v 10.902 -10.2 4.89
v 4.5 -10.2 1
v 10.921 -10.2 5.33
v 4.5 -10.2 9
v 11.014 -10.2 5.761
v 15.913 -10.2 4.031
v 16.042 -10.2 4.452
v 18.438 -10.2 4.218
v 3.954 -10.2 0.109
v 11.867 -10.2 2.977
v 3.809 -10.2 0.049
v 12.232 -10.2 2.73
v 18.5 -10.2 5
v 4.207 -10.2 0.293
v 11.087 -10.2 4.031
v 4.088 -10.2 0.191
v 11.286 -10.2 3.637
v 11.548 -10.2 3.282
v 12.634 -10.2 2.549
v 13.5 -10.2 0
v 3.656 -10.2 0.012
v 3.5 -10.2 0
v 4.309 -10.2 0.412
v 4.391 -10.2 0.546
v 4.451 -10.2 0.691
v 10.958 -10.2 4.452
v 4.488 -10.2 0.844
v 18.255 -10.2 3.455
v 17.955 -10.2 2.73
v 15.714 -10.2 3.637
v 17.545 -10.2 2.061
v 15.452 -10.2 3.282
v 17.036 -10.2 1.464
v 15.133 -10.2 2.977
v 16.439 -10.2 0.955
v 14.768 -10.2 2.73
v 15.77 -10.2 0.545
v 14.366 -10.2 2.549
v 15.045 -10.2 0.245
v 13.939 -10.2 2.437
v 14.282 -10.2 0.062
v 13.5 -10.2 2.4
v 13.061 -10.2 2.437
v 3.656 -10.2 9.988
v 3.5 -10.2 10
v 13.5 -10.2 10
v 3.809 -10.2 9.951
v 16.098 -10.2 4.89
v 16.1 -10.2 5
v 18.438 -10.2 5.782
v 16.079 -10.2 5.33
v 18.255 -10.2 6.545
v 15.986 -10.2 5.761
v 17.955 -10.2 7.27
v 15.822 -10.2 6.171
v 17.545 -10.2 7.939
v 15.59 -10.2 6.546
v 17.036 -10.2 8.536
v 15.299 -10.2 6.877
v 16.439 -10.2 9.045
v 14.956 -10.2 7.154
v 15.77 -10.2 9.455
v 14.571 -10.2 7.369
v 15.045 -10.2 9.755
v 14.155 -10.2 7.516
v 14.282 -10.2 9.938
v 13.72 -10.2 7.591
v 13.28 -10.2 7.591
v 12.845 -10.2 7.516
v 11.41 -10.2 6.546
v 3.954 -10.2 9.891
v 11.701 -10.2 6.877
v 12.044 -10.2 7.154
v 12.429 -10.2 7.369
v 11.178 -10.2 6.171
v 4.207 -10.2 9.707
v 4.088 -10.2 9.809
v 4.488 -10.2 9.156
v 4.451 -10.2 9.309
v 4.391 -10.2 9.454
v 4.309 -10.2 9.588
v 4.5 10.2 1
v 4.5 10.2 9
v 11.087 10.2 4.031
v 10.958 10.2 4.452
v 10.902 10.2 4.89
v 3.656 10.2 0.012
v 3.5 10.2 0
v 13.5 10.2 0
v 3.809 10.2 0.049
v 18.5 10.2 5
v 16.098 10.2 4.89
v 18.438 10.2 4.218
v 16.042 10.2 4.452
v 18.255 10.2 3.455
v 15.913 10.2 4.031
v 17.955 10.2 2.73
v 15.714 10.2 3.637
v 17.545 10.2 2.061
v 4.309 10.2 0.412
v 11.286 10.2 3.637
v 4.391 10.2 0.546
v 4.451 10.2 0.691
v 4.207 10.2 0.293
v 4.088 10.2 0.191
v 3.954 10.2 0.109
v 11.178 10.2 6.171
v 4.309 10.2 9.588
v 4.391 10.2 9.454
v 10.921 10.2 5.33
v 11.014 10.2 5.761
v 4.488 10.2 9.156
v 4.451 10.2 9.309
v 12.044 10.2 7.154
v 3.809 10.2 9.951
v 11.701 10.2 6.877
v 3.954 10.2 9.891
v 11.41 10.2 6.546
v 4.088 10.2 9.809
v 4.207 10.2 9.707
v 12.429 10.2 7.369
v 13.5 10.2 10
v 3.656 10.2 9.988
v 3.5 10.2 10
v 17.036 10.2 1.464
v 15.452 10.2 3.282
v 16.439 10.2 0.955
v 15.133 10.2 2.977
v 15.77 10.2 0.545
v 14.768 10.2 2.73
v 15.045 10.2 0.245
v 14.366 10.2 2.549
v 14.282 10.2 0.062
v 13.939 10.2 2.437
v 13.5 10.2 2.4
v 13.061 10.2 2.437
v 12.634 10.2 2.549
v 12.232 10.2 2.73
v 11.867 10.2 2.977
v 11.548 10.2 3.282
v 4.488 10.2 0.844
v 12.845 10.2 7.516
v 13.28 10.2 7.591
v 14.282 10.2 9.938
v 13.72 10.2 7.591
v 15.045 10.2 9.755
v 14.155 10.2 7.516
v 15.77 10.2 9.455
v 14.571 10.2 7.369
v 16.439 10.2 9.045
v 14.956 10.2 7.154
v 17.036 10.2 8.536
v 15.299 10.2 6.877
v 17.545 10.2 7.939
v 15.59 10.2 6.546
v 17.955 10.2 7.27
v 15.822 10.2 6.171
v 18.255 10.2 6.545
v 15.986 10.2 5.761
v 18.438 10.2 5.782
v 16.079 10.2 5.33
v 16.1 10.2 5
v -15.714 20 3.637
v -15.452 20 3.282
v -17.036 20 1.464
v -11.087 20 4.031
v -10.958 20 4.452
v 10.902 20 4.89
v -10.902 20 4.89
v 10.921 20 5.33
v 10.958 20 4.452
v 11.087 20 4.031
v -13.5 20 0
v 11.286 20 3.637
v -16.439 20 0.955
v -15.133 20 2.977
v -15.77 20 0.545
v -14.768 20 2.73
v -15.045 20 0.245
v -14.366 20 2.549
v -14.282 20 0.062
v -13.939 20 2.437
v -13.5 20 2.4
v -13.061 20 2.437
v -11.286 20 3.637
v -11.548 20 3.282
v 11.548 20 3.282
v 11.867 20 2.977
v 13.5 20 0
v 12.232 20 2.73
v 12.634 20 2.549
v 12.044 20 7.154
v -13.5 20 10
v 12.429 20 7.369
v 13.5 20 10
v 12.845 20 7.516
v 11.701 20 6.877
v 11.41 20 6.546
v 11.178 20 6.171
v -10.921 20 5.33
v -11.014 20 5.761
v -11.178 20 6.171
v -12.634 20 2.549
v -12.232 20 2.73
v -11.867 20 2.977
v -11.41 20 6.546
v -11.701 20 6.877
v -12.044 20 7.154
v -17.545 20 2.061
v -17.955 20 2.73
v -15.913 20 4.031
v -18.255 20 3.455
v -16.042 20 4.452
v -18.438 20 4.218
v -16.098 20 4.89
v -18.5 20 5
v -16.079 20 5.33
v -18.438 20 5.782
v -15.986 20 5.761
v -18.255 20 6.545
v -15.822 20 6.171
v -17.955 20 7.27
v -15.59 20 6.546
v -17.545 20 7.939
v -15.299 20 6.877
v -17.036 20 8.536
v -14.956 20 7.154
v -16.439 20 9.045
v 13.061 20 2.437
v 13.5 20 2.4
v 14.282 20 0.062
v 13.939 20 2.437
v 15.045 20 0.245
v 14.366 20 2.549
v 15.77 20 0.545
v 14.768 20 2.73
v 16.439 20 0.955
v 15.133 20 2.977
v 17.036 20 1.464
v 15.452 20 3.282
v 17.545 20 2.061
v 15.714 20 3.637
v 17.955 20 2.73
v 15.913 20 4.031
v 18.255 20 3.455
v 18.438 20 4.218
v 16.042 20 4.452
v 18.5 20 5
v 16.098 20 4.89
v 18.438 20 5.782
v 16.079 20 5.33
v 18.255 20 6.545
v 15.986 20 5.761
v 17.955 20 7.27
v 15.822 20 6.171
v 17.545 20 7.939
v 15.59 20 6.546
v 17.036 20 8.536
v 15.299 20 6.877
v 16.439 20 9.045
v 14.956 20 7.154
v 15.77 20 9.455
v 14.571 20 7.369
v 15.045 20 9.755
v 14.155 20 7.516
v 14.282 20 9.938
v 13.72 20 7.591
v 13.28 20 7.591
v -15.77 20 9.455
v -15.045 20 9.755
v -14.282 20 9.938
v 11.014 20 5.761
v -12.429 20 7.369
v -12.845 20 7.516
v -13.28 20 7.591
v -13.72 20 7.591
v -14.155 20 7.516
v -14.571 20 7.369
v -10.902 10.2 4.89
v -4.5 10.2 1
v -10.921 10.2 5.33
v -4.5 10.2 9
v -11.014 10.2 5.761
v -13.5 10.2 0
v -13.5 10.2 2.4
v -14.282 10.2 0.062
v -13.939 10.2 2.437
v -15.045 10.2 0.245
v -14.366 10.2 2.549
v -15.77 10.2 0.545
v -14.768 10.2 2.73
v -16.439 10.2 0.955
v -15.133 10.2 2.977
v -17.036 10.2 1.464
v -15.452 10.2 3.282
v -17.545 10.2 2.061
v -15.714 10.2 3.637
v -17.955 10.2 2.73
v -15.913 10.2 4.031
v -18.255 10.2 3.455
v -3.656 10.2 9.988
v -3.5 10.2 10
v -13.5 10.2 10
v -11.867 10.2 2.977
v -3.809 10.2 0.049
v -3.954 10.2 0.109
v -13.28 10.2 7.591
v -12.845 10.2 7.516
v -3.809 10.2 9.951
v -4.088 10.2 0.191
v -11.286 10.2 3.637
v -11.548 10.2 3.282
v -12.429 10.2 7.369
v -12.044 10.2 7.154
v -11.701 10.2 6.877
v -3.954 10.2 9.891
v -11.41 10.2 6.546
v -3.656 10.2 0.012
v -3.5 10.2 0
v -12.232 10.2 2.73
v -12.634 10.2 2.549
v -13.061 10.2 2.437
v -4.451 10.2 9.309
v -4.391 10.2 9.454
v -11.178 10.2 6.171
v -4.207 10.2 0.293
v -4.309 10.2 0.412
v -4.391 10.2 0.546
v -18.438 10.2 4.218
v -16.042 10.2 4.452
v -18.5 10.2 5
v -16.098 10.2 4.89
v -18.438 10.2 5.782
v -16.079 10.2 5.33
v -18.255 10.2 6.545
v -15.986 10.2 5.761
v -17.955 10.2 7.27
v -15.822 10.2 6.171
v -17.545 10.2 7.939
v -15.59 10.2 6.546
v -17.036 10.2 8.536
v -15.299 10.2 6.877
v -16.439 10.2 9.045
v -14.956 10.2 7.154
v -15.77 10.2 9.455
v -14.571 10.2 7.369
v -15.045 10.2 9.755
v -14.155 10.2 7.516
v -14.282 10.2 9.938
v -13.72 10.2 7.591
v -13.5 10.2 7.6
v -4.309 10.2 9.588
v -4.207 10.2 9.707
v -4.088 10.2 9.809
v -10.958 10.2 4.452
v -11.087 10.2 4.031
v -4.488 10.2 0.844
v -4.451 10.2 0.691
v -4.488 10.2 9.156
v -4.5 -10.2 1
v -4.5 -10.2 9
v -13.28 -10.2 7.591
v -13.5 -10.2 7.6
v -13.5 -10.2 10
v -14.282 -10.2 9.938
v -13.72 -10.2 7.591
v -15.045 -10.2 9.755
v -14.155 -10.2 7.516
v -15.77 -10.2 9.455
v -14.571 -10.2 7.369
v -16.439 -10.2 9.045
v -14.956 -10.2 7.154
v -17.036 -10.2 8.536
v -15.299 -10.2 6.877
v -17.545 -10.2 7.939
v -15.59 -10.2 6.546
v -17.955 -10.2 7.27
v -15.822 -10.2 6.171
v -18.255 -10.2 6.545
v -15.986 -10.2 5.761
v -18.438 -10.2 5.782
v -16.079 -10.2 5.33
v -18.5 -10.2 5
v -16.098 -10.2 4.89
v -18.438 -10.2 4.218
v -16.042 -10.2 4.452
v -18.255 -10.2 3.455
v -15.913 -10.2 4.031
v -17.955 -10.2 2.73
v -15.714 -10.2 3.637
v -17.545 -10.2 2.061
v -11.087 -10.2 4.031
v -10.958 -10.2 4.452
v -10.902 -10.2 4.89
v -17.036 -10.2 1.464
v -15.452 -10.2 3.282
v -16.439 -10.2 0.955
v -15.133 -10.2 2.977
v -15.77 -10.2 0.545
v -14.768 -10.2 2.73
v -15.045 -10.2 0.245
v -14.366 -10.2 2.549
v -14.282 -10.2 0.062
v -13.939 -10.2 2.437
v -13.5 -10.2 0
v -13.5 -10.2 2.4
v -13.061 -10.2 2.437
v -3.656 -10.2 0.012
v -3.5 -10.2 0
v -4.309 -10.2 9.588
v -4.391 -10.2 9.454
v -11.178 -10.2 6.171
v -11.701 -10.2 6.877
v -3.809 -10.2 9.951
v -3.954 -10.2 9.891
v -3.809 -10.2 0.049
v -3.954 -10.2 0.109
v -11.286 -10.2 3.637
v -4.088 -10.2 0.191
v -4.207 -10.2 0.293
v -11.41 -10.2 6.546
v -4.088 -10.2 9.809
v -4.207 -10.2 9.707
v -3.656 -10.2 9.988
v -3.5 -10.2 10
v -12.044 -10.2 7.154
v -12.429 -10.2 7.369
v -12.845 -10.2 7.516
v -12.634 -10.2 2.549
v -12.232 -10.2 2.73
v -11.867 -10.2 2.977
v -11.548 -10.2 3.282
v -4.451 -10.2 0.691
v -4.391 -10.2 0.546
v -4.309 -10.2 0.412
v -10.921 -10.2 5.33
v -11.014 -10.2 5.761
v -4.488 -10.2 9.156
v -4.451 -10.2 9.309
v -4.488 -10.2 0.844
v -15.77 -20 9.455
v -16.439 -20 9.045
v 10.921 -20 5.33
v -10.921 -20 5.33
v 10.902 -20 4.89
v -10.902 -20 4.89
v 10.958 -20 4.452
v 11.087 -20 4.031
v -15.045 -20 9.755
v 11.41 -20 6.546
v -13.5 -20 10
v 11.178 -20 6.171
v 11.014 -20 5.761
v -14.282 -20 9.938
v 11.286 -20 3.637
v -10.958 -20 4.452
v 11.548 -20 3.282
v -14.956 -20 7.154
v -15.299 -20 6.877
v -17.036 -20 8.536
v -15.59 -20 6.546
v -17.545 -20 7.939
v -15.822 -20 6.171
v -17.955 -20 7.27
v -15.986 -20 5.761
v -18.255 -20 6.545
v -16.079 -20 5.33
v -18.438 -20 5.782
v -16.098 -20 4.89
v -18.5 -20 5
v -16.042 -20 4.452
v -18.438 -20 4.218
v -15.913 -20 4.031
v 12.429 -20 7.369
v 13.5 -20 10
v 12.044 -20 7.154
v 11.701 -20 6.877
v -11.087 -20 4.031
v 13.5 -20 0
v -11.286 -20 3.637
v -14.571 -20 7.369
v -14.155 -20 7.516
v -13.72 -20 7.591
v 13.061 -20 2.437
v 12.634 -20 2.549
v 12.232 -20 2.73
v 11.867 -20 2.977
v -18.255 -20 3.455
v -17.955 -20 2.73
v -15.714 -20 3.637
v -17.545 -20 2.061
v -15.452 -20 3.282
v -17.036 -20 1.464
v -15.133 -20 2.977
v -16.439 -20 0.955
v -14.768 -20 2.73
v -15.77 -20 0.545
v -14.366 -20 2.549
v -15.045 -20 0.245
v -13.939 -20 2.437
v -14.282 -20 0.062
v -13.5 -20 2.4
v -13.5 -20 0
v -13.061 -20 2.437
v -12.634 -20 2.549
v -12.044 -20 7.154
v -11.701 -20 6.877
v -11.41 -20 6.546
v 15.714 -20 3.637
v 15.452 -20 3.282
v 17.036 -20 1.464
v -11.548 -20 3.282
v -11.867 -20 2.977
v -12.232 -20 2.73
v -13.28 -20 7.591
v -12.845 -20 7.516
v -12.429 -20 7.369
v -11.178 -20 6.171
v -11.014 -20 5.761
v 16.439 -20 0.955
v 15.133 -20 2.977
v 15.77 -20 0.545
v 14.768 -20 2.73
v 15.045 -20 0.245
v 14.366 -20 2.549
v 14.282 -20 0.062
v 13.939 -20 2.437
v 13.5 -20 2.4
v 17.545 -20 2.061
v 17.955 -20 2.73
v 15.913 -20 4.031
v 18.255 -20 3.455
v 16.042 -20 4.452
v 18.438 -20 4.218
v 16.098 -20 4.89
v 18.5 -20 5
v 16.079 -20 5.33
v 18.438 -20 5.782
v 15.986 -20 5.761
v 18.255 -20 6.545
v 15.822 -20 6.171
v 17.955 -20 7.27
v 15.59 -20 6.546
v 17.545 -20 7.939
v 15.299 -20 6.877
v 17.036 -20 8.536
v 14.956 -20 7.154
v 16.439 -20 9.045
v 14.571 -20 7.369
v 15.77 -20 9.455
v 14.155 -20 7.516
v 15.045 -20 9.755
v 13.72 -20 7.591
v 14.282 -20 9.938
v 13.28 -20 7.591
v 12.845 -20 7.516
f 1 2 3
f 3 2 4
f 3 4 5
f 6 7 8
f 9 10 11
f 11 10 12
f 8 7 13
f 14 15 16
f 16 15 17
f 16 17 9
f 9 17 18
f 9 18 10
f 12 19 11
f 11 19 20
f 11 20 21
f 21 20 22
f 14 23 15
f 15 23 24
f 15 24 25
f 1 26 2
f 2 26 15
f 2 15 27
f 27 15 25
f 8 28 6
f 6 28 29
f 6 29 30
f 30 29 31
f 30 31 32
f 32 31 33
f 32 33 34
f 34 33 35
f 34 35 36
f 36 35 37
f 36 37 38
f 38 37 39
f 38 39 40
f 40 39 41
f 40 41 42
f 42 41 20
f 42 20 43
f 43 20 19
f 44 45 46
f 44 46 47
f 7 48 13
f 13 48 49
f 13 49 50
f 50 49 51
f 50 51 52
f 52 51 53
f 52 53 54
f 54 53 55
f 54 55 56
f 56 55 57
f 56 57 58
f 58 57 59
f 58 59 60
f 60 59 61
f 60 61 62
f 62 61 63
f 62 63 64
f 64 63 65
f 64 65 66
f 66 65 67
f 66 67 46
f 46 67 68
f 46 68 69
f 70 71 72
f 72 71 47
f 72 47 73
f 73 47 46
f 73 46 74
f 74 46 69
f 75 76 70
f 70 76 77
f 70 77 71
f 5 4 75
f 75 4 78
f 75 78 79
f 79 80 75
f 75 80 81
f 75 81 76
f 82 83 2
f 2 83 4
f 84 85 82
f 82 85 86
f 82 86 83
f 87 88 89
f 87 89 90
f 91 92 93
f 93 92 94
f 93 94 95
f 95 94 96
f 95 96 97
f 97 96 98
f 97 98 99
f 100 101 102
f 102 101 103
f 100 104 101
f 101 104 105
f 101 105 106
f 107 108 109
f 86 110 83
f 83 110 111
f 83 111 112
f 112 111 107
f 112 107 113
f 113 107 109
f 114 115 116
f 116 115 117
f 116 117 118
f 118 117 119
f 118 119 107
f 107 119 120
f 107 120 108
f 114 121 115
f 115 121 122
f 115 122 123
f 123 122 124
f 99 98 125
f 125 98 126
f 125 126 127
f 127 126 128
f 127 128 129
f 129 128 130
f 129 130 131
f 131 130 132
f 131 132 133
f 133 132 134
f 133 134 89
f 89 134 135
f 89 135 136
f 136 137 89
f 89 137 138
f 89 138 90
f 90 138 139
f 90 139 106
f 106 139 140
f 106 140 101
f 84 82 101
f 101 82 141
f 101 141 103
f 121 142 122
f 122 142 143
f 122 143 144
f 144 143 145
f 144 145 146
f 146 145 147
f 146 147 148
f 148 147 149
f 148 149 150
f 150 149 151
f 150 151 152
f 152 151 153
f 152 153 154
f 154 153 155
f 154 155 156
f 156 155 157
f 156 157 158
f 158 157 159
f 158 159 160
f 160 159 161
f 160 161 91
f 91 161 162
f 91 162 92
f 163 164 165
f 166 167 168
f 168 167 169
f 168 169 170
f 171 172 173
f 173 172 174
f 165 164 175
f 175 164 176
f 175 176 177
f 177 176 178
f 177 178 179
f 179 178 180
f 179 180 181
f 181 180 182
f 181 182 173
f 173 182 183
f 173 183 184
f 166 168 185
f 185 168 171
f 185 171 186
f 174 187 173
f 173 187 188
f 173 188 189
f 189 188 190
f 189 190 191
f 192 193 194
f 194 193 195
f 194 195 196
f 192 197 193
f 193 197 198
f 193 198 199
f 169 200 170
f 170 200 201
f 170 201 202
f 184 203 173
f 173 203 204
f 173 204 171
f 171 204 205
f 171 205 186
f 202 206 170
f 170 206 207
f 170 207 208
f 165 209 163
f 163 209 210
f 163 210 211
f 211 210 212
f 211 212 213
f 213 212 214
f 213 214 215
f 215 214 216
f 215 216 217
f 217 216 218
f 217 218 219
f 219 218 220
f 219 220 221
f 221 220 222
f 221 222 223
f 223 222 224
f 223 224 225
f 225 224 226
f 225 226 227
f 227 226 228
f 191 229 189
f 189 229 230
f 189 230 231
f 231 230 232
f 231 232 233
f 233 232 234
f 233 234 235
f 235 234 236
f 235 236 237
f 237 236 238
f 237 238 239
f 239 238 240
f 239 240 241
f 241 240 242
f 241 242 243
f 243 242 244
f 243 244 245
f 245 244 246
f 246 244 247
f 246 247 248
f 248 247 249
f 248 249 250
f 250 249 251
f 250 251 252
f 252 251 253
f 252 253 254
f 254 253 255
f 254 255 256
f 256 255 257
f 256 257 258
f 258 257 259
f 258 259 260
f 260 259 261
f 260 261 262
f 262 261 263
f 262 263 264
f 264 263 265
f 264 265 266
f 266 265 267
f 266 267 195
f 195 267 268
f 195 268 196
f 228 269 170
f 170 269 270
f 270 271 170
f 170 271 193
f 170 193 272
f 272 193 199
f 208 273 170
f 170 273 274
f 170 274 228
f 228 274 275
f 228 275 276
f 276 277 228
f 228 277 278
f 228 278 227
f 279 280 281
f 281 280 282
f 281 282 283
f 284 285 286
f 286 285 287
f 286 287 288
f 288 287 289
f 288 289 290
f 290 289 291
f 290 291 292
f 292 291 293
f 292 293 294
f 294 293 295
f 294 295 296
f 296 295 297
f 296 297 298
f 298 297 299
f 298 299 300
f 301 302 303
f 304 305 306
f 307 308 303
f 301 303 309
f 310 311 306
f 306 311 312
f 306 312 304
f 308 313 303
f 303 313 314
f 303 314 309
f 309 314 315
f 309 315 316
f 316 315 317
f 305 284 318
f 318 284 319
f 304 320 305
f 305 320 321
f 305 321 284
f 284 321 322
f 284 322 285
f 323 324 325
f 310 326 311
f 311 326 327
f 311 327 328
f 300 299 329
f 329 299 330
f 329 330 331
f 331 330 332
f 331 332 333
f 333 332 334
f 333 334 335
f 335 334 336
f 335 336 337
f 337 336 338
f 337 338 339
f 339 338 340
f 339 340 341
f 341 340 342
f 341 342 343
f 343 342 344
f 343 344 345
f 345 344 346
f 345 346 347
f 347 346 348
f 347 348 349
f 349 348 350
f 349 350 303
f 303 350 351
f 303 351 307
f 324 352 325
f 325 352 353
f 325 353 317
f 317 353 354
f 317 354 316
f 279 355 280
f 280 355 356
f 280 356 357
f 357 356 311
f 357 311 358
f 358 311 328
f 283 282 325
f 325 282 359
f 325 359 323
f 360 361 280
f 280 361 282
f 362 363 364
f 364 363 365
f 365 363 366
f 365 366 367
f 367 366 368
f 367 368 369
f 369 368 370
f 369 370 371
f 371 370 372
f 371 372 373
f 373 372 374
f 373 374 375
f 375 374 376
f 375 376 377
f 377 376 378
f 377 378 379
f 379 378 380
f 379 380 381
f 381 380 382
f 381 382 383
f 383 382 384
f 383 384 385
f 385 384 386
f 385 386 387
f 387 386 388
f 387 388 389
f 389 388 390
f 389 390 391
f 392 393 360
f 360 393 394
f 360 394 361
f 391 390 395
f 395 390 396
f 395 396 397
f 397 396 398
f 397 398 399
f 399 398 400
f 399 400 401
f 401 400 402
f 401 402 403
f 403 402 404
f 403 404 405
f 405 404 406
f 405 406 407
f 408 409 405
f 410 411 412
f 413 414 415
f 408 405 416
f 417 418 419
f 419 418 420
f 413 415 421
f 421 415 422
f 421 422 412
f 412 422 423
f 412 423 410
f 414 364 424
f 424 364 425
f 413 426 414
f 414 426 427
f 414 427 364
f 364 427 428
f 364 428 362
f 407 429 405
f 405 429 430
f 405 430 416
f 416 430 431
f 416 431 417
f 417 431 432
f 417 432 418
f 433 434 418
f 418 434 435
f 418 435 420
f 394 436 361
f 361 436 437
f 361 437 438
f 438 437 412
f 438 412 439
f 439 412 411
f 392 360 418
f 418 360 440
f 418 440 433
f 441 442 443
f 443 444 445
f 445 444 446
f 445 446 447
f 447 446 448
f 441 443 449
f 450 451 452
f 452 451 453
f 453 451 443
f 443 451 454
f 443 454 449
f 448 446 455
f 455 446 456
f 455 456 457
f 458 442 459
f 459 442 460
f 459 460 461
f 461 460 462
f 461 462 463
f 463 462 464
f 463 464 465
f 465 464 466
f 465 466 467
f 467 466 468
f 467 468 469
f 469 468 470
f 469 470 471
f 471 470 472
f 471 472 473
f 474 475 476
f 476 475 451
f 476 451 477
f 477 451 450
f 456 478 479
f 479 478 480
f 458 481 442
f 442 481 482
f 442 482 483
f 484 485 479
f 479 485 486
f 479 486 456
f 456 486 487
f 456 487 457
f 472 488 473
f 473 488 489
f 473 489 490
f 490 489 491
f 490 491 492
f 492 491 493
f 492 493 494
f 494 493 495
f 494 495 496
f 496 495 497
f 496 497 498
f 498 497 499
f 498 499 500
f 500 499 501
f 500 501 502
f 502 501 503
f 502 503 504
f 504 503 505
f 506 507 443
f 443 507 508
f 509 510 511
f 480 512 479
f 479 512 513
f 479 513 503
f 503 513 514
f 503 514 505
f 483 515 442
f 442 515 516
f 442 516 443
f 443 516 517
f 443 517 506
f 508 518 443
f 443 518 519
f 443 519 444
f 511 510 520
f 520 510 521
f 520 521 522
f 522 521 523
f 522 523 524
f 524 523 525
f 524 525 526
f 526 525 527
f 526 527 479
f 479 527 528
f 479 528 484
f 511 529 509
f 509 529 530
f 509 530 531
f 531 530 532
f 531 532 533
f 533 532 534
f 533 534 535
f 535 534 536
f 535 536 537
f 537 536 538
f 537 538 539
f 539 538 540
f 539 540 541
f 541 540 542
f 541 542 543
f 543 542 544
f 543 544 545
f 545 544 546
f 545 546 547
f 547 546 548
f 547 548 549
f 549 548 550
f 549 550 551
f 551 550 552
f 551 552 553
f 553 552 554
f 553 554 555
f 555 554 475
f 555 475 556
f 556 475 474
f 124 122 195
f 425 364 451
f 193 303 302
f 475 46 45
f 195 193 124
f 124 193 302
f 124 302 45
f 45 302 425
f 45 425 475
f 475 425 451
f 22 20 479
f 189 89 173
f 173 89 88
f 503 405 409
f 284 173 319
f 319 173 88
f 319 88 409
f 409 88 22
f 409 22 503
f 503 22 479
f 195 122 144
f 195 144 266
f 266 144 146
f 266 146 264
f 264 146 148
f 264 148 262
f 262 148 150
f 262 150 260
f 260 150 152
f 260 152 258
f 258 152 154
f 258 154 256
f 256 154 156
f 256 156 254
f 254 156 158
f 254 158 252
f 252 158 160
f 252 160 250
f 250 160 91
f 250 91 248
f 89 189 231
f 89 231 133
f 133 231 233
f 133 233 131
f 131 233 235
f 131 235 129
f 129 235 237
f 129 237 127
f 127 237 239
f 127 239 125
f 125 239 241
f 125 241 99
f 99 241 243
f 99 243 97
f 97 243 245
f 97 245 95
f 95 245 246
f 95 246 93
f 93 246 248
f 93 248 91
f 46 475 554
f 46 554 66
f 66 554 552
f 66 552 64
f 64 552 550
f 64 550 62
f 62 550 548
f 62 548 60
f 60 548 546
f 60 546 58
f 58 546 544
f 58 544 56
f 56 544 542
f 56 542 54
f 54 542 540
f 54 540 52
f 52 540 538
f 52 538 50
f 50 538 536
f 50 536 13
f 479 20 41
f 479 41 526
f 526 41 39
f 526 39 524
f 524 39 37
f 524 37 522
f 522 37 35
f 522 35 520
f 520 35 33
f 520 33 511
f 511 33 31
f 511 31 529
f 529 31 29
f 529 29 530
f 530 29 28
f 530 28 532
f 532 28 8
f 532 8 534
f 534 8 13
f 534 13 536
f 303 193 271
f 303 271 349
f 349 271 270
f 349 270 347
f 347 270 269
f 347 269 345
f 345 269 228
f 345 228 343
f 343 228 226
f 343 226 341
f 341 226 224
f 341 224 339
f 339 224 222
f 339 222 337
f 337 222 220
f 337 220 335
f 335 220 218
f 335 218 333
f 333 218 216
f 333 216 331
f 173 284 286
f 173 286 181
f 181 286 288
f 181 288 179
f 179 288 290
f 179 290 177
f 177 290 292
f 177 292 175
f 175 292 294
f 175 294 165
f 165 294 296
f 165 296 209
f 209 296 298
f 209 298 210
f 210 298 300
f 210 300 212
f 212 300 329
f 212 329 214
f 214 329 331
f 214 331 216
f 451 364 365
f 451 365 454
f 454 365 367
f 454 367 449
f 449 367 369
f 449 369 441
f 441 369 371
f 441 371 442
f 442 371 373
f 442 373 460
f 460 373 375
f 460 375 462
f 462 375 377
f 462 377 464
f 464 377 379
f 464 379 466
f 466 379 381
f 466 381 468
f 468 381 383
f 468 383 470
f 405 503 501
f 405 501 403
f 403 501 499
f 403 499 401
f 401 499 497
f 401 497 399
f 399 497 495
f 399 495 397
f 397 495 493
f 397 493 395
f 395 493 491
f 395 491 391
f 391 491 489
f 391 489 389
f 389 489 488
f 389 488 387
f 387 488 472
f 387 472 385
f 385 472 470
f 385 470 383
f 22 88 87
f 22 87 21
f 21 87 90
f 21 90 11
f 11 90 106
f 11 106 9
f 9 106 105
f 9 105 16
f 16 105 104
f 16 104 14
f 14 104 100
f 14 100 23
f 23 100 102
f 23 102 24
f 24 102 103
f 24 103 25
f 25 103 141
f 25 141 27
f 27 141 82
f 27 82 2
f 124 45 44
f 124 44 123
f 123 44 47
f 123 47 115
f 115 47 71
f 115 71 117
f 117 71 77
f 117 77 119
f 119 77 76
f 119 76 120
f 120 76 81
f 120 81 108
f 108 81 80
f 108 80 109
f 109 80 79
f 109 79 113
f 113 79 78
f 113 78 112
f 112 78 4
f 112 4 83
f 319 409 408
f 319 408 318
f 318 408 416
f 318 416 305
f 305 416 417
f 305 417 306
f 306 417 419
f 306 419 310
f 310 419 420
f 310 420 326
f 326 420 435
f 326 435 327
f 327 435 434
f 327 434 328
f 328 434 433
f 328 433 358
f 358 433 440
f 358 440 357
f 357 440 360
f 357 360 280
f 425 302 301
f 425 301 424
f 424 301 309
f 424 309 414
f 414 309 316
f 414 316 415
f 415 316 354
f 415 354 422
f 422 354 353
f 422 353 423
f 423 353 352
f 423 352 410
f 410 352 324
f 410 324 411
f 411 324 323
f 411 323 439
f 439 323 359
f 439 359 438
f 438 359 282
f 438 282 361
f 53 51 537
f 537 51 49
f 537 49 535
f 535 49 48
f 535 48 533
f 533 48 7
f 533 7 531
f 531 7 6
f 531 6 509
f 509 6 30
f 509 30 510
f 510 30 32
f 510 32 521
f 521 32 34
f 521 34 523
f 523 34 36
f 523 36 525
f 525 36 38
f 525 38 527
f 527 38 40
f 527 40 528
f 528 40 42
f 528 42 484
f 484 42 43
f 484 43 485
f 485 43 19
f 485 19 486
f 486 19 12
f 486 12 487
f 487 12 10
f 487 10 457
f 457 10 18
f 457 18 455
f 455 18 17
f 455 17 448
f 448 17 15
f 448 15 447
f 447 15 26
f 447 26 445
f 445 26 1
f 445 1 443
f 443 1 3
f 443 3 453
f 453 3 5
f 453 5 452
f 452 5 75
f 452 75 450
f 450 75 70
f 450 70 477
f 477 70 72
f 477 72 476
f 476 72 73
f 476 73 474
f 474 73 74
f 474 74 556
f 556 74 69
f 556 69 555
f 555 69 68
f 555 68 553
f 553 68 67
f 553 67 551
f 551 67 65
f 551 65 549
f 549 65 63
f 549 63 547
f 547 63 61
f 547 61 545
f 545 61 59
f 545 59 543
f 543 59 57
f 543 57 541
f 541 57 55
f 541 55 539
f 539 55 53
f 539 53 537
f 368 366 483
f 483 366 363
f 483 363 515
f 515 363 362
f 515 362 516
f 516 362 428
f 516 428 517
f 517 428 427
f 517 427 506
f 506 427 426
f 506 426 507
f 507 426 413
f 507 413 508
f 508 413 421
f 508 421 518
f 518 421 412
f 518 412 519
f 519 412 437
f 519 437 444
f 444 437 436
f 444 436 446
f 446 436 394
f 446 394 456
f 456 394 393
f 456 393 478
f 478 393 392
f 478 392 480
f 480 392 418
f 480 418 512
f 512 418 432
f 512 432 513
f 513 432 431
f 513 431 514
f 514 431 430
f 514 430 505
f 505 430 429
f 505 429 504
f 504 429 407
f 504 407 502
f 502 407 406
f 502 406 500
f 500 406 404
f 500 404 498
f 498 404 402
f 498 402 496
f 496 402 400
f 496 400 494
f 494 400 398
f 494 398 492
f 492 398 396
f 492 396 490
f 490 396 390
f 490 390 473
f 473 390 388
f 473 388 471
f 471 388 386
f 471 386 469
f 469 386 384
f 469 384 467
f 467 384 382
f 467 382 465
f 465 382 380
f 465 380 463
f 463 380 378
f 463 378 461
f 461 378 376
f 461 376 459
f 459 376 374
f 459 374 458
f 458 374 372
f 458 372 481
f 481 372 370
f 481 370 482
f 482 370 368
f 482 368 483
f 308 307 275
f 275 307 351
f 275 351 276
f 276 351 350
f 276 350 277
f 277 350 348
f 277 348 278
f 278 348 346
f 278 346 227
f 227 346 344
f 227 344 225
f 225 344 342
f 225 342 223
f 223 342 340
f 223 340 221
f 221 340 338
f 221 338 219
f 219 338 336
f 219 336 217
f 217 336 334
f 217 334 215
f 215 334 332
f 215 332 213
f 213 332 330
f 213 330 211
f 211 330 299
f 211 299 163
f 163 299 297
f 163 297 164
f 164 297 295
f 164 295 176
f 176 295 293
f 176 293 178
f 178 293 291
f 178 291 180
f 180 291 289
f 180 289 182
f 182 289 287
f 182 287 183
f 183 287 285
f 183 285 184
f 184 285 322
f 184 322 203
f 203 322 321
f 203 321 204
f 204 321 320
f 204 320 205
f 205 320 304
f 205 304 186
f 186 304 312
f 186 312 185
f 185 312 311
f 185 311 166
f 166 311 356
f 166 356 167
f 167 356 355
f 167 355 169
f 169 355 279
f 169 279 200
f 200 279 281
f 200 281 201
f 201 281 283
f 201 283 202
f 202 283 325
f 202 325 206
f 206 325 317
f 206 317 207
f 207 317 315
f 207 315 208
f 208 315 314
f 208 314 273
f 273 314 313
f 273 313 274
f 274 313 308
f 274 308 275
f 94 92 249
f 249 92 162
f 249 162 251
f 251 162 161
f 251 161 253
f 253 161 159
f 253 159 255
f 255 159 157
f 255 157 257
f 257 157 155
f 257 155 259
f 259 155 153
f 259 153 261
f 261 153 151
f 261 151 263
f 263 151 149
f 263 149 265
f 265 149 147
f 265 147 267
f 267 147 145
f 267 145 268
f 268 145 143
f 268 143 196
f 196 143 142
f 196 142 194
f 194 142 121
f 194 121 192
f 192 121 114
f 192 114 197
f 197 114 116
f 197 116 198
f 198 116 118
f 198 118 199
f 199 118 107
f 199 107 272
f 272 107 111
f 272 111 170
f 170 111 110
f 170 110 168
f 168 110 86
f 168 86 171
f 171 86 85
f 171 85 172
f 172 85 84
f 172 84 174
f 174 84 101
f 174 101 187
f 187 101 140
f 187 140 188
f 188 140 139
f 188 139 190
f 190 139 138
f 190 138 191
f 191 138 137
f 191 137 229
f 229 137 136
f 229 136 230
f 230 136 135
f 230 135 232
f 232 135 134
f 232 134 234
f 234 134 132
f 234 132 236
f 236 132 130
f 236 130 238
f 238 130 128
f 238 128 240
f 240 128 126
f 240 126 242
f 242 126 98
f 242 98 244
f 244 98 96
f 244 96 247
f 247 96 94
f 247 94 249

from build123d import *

# Parameters (mm, degrees)
BOSS_EXTRUDE2_DEPTH = 10
FILLET1_R           = 5
FILLET2_R           = 1
SKETCH2_R           = 2.6
CUT_EXTRUDE1_DEPTH  = 46.191260217


with BuildPart() as part:
    # Sketch1 → Boss-Extrude2 (new body)
    with BuildSketch(Plane.XY):
        Polygon((-18.5, -10.2), (-18.5, -20), (18.5, -20), (18.5, -10.2), (4.5, -10.2), (4.5, 10.2), (18.5, 10.2), (18.5, 20), (-18.5, 20), (-18.5, 10.2), (-4.5, 10.2), (-4.5, -10.2), align=None)
    extrude(amount=BOSS_EXTRUDE2_DEPTH)

    # Fillet1
    fillet1_edges = [part.edges().sort_by_distance(p)[0] for p in [
        (18.5, 15.1, 0),
        (18.5, 15.1, 10),
        (18.5, -15.1, 0),
        (18.5, -15.1, 10),
        (-18.5, 15.1, 0),
        (-18.5, -15.1, 0),
        (-18.5, -15.1, 10),
        (-18.5, 15.1, 10),
    ]]
    fillet(fillet1_edges, radius=FILLET1_R - 0.0001)  # a hair under: the kernel refuses the full size

    # Fillet2
    fillet2_edges = [part.edges().sort_by_distance(p)[0] for p in [
        (4.5, 0, 10),
        (-4.5, 0, 0),
        (4.5, 0, 0),
        (-4.5, 0, 10),
    ]]
    fillet(fillet2_edges, radius=FILLET2_R)

    # Sketch2 → Cut-Extrude1 (cut, through all)
    with BuildSketch(Plane.XZ.offset(20)):
        with Locations(Location((-13.5, 5, 0), (0, 0, 270))):
            Circle(SKETCH2_R)
        with Locations(Location((13.5, 5, 0), (0, 0, 270))):
            Circle(SKETCH2_R)
    extrude(amount=-CUT_EXTRUDE1_DEPTH, mode=Mode.SUBTRACT)


solid = part.part
